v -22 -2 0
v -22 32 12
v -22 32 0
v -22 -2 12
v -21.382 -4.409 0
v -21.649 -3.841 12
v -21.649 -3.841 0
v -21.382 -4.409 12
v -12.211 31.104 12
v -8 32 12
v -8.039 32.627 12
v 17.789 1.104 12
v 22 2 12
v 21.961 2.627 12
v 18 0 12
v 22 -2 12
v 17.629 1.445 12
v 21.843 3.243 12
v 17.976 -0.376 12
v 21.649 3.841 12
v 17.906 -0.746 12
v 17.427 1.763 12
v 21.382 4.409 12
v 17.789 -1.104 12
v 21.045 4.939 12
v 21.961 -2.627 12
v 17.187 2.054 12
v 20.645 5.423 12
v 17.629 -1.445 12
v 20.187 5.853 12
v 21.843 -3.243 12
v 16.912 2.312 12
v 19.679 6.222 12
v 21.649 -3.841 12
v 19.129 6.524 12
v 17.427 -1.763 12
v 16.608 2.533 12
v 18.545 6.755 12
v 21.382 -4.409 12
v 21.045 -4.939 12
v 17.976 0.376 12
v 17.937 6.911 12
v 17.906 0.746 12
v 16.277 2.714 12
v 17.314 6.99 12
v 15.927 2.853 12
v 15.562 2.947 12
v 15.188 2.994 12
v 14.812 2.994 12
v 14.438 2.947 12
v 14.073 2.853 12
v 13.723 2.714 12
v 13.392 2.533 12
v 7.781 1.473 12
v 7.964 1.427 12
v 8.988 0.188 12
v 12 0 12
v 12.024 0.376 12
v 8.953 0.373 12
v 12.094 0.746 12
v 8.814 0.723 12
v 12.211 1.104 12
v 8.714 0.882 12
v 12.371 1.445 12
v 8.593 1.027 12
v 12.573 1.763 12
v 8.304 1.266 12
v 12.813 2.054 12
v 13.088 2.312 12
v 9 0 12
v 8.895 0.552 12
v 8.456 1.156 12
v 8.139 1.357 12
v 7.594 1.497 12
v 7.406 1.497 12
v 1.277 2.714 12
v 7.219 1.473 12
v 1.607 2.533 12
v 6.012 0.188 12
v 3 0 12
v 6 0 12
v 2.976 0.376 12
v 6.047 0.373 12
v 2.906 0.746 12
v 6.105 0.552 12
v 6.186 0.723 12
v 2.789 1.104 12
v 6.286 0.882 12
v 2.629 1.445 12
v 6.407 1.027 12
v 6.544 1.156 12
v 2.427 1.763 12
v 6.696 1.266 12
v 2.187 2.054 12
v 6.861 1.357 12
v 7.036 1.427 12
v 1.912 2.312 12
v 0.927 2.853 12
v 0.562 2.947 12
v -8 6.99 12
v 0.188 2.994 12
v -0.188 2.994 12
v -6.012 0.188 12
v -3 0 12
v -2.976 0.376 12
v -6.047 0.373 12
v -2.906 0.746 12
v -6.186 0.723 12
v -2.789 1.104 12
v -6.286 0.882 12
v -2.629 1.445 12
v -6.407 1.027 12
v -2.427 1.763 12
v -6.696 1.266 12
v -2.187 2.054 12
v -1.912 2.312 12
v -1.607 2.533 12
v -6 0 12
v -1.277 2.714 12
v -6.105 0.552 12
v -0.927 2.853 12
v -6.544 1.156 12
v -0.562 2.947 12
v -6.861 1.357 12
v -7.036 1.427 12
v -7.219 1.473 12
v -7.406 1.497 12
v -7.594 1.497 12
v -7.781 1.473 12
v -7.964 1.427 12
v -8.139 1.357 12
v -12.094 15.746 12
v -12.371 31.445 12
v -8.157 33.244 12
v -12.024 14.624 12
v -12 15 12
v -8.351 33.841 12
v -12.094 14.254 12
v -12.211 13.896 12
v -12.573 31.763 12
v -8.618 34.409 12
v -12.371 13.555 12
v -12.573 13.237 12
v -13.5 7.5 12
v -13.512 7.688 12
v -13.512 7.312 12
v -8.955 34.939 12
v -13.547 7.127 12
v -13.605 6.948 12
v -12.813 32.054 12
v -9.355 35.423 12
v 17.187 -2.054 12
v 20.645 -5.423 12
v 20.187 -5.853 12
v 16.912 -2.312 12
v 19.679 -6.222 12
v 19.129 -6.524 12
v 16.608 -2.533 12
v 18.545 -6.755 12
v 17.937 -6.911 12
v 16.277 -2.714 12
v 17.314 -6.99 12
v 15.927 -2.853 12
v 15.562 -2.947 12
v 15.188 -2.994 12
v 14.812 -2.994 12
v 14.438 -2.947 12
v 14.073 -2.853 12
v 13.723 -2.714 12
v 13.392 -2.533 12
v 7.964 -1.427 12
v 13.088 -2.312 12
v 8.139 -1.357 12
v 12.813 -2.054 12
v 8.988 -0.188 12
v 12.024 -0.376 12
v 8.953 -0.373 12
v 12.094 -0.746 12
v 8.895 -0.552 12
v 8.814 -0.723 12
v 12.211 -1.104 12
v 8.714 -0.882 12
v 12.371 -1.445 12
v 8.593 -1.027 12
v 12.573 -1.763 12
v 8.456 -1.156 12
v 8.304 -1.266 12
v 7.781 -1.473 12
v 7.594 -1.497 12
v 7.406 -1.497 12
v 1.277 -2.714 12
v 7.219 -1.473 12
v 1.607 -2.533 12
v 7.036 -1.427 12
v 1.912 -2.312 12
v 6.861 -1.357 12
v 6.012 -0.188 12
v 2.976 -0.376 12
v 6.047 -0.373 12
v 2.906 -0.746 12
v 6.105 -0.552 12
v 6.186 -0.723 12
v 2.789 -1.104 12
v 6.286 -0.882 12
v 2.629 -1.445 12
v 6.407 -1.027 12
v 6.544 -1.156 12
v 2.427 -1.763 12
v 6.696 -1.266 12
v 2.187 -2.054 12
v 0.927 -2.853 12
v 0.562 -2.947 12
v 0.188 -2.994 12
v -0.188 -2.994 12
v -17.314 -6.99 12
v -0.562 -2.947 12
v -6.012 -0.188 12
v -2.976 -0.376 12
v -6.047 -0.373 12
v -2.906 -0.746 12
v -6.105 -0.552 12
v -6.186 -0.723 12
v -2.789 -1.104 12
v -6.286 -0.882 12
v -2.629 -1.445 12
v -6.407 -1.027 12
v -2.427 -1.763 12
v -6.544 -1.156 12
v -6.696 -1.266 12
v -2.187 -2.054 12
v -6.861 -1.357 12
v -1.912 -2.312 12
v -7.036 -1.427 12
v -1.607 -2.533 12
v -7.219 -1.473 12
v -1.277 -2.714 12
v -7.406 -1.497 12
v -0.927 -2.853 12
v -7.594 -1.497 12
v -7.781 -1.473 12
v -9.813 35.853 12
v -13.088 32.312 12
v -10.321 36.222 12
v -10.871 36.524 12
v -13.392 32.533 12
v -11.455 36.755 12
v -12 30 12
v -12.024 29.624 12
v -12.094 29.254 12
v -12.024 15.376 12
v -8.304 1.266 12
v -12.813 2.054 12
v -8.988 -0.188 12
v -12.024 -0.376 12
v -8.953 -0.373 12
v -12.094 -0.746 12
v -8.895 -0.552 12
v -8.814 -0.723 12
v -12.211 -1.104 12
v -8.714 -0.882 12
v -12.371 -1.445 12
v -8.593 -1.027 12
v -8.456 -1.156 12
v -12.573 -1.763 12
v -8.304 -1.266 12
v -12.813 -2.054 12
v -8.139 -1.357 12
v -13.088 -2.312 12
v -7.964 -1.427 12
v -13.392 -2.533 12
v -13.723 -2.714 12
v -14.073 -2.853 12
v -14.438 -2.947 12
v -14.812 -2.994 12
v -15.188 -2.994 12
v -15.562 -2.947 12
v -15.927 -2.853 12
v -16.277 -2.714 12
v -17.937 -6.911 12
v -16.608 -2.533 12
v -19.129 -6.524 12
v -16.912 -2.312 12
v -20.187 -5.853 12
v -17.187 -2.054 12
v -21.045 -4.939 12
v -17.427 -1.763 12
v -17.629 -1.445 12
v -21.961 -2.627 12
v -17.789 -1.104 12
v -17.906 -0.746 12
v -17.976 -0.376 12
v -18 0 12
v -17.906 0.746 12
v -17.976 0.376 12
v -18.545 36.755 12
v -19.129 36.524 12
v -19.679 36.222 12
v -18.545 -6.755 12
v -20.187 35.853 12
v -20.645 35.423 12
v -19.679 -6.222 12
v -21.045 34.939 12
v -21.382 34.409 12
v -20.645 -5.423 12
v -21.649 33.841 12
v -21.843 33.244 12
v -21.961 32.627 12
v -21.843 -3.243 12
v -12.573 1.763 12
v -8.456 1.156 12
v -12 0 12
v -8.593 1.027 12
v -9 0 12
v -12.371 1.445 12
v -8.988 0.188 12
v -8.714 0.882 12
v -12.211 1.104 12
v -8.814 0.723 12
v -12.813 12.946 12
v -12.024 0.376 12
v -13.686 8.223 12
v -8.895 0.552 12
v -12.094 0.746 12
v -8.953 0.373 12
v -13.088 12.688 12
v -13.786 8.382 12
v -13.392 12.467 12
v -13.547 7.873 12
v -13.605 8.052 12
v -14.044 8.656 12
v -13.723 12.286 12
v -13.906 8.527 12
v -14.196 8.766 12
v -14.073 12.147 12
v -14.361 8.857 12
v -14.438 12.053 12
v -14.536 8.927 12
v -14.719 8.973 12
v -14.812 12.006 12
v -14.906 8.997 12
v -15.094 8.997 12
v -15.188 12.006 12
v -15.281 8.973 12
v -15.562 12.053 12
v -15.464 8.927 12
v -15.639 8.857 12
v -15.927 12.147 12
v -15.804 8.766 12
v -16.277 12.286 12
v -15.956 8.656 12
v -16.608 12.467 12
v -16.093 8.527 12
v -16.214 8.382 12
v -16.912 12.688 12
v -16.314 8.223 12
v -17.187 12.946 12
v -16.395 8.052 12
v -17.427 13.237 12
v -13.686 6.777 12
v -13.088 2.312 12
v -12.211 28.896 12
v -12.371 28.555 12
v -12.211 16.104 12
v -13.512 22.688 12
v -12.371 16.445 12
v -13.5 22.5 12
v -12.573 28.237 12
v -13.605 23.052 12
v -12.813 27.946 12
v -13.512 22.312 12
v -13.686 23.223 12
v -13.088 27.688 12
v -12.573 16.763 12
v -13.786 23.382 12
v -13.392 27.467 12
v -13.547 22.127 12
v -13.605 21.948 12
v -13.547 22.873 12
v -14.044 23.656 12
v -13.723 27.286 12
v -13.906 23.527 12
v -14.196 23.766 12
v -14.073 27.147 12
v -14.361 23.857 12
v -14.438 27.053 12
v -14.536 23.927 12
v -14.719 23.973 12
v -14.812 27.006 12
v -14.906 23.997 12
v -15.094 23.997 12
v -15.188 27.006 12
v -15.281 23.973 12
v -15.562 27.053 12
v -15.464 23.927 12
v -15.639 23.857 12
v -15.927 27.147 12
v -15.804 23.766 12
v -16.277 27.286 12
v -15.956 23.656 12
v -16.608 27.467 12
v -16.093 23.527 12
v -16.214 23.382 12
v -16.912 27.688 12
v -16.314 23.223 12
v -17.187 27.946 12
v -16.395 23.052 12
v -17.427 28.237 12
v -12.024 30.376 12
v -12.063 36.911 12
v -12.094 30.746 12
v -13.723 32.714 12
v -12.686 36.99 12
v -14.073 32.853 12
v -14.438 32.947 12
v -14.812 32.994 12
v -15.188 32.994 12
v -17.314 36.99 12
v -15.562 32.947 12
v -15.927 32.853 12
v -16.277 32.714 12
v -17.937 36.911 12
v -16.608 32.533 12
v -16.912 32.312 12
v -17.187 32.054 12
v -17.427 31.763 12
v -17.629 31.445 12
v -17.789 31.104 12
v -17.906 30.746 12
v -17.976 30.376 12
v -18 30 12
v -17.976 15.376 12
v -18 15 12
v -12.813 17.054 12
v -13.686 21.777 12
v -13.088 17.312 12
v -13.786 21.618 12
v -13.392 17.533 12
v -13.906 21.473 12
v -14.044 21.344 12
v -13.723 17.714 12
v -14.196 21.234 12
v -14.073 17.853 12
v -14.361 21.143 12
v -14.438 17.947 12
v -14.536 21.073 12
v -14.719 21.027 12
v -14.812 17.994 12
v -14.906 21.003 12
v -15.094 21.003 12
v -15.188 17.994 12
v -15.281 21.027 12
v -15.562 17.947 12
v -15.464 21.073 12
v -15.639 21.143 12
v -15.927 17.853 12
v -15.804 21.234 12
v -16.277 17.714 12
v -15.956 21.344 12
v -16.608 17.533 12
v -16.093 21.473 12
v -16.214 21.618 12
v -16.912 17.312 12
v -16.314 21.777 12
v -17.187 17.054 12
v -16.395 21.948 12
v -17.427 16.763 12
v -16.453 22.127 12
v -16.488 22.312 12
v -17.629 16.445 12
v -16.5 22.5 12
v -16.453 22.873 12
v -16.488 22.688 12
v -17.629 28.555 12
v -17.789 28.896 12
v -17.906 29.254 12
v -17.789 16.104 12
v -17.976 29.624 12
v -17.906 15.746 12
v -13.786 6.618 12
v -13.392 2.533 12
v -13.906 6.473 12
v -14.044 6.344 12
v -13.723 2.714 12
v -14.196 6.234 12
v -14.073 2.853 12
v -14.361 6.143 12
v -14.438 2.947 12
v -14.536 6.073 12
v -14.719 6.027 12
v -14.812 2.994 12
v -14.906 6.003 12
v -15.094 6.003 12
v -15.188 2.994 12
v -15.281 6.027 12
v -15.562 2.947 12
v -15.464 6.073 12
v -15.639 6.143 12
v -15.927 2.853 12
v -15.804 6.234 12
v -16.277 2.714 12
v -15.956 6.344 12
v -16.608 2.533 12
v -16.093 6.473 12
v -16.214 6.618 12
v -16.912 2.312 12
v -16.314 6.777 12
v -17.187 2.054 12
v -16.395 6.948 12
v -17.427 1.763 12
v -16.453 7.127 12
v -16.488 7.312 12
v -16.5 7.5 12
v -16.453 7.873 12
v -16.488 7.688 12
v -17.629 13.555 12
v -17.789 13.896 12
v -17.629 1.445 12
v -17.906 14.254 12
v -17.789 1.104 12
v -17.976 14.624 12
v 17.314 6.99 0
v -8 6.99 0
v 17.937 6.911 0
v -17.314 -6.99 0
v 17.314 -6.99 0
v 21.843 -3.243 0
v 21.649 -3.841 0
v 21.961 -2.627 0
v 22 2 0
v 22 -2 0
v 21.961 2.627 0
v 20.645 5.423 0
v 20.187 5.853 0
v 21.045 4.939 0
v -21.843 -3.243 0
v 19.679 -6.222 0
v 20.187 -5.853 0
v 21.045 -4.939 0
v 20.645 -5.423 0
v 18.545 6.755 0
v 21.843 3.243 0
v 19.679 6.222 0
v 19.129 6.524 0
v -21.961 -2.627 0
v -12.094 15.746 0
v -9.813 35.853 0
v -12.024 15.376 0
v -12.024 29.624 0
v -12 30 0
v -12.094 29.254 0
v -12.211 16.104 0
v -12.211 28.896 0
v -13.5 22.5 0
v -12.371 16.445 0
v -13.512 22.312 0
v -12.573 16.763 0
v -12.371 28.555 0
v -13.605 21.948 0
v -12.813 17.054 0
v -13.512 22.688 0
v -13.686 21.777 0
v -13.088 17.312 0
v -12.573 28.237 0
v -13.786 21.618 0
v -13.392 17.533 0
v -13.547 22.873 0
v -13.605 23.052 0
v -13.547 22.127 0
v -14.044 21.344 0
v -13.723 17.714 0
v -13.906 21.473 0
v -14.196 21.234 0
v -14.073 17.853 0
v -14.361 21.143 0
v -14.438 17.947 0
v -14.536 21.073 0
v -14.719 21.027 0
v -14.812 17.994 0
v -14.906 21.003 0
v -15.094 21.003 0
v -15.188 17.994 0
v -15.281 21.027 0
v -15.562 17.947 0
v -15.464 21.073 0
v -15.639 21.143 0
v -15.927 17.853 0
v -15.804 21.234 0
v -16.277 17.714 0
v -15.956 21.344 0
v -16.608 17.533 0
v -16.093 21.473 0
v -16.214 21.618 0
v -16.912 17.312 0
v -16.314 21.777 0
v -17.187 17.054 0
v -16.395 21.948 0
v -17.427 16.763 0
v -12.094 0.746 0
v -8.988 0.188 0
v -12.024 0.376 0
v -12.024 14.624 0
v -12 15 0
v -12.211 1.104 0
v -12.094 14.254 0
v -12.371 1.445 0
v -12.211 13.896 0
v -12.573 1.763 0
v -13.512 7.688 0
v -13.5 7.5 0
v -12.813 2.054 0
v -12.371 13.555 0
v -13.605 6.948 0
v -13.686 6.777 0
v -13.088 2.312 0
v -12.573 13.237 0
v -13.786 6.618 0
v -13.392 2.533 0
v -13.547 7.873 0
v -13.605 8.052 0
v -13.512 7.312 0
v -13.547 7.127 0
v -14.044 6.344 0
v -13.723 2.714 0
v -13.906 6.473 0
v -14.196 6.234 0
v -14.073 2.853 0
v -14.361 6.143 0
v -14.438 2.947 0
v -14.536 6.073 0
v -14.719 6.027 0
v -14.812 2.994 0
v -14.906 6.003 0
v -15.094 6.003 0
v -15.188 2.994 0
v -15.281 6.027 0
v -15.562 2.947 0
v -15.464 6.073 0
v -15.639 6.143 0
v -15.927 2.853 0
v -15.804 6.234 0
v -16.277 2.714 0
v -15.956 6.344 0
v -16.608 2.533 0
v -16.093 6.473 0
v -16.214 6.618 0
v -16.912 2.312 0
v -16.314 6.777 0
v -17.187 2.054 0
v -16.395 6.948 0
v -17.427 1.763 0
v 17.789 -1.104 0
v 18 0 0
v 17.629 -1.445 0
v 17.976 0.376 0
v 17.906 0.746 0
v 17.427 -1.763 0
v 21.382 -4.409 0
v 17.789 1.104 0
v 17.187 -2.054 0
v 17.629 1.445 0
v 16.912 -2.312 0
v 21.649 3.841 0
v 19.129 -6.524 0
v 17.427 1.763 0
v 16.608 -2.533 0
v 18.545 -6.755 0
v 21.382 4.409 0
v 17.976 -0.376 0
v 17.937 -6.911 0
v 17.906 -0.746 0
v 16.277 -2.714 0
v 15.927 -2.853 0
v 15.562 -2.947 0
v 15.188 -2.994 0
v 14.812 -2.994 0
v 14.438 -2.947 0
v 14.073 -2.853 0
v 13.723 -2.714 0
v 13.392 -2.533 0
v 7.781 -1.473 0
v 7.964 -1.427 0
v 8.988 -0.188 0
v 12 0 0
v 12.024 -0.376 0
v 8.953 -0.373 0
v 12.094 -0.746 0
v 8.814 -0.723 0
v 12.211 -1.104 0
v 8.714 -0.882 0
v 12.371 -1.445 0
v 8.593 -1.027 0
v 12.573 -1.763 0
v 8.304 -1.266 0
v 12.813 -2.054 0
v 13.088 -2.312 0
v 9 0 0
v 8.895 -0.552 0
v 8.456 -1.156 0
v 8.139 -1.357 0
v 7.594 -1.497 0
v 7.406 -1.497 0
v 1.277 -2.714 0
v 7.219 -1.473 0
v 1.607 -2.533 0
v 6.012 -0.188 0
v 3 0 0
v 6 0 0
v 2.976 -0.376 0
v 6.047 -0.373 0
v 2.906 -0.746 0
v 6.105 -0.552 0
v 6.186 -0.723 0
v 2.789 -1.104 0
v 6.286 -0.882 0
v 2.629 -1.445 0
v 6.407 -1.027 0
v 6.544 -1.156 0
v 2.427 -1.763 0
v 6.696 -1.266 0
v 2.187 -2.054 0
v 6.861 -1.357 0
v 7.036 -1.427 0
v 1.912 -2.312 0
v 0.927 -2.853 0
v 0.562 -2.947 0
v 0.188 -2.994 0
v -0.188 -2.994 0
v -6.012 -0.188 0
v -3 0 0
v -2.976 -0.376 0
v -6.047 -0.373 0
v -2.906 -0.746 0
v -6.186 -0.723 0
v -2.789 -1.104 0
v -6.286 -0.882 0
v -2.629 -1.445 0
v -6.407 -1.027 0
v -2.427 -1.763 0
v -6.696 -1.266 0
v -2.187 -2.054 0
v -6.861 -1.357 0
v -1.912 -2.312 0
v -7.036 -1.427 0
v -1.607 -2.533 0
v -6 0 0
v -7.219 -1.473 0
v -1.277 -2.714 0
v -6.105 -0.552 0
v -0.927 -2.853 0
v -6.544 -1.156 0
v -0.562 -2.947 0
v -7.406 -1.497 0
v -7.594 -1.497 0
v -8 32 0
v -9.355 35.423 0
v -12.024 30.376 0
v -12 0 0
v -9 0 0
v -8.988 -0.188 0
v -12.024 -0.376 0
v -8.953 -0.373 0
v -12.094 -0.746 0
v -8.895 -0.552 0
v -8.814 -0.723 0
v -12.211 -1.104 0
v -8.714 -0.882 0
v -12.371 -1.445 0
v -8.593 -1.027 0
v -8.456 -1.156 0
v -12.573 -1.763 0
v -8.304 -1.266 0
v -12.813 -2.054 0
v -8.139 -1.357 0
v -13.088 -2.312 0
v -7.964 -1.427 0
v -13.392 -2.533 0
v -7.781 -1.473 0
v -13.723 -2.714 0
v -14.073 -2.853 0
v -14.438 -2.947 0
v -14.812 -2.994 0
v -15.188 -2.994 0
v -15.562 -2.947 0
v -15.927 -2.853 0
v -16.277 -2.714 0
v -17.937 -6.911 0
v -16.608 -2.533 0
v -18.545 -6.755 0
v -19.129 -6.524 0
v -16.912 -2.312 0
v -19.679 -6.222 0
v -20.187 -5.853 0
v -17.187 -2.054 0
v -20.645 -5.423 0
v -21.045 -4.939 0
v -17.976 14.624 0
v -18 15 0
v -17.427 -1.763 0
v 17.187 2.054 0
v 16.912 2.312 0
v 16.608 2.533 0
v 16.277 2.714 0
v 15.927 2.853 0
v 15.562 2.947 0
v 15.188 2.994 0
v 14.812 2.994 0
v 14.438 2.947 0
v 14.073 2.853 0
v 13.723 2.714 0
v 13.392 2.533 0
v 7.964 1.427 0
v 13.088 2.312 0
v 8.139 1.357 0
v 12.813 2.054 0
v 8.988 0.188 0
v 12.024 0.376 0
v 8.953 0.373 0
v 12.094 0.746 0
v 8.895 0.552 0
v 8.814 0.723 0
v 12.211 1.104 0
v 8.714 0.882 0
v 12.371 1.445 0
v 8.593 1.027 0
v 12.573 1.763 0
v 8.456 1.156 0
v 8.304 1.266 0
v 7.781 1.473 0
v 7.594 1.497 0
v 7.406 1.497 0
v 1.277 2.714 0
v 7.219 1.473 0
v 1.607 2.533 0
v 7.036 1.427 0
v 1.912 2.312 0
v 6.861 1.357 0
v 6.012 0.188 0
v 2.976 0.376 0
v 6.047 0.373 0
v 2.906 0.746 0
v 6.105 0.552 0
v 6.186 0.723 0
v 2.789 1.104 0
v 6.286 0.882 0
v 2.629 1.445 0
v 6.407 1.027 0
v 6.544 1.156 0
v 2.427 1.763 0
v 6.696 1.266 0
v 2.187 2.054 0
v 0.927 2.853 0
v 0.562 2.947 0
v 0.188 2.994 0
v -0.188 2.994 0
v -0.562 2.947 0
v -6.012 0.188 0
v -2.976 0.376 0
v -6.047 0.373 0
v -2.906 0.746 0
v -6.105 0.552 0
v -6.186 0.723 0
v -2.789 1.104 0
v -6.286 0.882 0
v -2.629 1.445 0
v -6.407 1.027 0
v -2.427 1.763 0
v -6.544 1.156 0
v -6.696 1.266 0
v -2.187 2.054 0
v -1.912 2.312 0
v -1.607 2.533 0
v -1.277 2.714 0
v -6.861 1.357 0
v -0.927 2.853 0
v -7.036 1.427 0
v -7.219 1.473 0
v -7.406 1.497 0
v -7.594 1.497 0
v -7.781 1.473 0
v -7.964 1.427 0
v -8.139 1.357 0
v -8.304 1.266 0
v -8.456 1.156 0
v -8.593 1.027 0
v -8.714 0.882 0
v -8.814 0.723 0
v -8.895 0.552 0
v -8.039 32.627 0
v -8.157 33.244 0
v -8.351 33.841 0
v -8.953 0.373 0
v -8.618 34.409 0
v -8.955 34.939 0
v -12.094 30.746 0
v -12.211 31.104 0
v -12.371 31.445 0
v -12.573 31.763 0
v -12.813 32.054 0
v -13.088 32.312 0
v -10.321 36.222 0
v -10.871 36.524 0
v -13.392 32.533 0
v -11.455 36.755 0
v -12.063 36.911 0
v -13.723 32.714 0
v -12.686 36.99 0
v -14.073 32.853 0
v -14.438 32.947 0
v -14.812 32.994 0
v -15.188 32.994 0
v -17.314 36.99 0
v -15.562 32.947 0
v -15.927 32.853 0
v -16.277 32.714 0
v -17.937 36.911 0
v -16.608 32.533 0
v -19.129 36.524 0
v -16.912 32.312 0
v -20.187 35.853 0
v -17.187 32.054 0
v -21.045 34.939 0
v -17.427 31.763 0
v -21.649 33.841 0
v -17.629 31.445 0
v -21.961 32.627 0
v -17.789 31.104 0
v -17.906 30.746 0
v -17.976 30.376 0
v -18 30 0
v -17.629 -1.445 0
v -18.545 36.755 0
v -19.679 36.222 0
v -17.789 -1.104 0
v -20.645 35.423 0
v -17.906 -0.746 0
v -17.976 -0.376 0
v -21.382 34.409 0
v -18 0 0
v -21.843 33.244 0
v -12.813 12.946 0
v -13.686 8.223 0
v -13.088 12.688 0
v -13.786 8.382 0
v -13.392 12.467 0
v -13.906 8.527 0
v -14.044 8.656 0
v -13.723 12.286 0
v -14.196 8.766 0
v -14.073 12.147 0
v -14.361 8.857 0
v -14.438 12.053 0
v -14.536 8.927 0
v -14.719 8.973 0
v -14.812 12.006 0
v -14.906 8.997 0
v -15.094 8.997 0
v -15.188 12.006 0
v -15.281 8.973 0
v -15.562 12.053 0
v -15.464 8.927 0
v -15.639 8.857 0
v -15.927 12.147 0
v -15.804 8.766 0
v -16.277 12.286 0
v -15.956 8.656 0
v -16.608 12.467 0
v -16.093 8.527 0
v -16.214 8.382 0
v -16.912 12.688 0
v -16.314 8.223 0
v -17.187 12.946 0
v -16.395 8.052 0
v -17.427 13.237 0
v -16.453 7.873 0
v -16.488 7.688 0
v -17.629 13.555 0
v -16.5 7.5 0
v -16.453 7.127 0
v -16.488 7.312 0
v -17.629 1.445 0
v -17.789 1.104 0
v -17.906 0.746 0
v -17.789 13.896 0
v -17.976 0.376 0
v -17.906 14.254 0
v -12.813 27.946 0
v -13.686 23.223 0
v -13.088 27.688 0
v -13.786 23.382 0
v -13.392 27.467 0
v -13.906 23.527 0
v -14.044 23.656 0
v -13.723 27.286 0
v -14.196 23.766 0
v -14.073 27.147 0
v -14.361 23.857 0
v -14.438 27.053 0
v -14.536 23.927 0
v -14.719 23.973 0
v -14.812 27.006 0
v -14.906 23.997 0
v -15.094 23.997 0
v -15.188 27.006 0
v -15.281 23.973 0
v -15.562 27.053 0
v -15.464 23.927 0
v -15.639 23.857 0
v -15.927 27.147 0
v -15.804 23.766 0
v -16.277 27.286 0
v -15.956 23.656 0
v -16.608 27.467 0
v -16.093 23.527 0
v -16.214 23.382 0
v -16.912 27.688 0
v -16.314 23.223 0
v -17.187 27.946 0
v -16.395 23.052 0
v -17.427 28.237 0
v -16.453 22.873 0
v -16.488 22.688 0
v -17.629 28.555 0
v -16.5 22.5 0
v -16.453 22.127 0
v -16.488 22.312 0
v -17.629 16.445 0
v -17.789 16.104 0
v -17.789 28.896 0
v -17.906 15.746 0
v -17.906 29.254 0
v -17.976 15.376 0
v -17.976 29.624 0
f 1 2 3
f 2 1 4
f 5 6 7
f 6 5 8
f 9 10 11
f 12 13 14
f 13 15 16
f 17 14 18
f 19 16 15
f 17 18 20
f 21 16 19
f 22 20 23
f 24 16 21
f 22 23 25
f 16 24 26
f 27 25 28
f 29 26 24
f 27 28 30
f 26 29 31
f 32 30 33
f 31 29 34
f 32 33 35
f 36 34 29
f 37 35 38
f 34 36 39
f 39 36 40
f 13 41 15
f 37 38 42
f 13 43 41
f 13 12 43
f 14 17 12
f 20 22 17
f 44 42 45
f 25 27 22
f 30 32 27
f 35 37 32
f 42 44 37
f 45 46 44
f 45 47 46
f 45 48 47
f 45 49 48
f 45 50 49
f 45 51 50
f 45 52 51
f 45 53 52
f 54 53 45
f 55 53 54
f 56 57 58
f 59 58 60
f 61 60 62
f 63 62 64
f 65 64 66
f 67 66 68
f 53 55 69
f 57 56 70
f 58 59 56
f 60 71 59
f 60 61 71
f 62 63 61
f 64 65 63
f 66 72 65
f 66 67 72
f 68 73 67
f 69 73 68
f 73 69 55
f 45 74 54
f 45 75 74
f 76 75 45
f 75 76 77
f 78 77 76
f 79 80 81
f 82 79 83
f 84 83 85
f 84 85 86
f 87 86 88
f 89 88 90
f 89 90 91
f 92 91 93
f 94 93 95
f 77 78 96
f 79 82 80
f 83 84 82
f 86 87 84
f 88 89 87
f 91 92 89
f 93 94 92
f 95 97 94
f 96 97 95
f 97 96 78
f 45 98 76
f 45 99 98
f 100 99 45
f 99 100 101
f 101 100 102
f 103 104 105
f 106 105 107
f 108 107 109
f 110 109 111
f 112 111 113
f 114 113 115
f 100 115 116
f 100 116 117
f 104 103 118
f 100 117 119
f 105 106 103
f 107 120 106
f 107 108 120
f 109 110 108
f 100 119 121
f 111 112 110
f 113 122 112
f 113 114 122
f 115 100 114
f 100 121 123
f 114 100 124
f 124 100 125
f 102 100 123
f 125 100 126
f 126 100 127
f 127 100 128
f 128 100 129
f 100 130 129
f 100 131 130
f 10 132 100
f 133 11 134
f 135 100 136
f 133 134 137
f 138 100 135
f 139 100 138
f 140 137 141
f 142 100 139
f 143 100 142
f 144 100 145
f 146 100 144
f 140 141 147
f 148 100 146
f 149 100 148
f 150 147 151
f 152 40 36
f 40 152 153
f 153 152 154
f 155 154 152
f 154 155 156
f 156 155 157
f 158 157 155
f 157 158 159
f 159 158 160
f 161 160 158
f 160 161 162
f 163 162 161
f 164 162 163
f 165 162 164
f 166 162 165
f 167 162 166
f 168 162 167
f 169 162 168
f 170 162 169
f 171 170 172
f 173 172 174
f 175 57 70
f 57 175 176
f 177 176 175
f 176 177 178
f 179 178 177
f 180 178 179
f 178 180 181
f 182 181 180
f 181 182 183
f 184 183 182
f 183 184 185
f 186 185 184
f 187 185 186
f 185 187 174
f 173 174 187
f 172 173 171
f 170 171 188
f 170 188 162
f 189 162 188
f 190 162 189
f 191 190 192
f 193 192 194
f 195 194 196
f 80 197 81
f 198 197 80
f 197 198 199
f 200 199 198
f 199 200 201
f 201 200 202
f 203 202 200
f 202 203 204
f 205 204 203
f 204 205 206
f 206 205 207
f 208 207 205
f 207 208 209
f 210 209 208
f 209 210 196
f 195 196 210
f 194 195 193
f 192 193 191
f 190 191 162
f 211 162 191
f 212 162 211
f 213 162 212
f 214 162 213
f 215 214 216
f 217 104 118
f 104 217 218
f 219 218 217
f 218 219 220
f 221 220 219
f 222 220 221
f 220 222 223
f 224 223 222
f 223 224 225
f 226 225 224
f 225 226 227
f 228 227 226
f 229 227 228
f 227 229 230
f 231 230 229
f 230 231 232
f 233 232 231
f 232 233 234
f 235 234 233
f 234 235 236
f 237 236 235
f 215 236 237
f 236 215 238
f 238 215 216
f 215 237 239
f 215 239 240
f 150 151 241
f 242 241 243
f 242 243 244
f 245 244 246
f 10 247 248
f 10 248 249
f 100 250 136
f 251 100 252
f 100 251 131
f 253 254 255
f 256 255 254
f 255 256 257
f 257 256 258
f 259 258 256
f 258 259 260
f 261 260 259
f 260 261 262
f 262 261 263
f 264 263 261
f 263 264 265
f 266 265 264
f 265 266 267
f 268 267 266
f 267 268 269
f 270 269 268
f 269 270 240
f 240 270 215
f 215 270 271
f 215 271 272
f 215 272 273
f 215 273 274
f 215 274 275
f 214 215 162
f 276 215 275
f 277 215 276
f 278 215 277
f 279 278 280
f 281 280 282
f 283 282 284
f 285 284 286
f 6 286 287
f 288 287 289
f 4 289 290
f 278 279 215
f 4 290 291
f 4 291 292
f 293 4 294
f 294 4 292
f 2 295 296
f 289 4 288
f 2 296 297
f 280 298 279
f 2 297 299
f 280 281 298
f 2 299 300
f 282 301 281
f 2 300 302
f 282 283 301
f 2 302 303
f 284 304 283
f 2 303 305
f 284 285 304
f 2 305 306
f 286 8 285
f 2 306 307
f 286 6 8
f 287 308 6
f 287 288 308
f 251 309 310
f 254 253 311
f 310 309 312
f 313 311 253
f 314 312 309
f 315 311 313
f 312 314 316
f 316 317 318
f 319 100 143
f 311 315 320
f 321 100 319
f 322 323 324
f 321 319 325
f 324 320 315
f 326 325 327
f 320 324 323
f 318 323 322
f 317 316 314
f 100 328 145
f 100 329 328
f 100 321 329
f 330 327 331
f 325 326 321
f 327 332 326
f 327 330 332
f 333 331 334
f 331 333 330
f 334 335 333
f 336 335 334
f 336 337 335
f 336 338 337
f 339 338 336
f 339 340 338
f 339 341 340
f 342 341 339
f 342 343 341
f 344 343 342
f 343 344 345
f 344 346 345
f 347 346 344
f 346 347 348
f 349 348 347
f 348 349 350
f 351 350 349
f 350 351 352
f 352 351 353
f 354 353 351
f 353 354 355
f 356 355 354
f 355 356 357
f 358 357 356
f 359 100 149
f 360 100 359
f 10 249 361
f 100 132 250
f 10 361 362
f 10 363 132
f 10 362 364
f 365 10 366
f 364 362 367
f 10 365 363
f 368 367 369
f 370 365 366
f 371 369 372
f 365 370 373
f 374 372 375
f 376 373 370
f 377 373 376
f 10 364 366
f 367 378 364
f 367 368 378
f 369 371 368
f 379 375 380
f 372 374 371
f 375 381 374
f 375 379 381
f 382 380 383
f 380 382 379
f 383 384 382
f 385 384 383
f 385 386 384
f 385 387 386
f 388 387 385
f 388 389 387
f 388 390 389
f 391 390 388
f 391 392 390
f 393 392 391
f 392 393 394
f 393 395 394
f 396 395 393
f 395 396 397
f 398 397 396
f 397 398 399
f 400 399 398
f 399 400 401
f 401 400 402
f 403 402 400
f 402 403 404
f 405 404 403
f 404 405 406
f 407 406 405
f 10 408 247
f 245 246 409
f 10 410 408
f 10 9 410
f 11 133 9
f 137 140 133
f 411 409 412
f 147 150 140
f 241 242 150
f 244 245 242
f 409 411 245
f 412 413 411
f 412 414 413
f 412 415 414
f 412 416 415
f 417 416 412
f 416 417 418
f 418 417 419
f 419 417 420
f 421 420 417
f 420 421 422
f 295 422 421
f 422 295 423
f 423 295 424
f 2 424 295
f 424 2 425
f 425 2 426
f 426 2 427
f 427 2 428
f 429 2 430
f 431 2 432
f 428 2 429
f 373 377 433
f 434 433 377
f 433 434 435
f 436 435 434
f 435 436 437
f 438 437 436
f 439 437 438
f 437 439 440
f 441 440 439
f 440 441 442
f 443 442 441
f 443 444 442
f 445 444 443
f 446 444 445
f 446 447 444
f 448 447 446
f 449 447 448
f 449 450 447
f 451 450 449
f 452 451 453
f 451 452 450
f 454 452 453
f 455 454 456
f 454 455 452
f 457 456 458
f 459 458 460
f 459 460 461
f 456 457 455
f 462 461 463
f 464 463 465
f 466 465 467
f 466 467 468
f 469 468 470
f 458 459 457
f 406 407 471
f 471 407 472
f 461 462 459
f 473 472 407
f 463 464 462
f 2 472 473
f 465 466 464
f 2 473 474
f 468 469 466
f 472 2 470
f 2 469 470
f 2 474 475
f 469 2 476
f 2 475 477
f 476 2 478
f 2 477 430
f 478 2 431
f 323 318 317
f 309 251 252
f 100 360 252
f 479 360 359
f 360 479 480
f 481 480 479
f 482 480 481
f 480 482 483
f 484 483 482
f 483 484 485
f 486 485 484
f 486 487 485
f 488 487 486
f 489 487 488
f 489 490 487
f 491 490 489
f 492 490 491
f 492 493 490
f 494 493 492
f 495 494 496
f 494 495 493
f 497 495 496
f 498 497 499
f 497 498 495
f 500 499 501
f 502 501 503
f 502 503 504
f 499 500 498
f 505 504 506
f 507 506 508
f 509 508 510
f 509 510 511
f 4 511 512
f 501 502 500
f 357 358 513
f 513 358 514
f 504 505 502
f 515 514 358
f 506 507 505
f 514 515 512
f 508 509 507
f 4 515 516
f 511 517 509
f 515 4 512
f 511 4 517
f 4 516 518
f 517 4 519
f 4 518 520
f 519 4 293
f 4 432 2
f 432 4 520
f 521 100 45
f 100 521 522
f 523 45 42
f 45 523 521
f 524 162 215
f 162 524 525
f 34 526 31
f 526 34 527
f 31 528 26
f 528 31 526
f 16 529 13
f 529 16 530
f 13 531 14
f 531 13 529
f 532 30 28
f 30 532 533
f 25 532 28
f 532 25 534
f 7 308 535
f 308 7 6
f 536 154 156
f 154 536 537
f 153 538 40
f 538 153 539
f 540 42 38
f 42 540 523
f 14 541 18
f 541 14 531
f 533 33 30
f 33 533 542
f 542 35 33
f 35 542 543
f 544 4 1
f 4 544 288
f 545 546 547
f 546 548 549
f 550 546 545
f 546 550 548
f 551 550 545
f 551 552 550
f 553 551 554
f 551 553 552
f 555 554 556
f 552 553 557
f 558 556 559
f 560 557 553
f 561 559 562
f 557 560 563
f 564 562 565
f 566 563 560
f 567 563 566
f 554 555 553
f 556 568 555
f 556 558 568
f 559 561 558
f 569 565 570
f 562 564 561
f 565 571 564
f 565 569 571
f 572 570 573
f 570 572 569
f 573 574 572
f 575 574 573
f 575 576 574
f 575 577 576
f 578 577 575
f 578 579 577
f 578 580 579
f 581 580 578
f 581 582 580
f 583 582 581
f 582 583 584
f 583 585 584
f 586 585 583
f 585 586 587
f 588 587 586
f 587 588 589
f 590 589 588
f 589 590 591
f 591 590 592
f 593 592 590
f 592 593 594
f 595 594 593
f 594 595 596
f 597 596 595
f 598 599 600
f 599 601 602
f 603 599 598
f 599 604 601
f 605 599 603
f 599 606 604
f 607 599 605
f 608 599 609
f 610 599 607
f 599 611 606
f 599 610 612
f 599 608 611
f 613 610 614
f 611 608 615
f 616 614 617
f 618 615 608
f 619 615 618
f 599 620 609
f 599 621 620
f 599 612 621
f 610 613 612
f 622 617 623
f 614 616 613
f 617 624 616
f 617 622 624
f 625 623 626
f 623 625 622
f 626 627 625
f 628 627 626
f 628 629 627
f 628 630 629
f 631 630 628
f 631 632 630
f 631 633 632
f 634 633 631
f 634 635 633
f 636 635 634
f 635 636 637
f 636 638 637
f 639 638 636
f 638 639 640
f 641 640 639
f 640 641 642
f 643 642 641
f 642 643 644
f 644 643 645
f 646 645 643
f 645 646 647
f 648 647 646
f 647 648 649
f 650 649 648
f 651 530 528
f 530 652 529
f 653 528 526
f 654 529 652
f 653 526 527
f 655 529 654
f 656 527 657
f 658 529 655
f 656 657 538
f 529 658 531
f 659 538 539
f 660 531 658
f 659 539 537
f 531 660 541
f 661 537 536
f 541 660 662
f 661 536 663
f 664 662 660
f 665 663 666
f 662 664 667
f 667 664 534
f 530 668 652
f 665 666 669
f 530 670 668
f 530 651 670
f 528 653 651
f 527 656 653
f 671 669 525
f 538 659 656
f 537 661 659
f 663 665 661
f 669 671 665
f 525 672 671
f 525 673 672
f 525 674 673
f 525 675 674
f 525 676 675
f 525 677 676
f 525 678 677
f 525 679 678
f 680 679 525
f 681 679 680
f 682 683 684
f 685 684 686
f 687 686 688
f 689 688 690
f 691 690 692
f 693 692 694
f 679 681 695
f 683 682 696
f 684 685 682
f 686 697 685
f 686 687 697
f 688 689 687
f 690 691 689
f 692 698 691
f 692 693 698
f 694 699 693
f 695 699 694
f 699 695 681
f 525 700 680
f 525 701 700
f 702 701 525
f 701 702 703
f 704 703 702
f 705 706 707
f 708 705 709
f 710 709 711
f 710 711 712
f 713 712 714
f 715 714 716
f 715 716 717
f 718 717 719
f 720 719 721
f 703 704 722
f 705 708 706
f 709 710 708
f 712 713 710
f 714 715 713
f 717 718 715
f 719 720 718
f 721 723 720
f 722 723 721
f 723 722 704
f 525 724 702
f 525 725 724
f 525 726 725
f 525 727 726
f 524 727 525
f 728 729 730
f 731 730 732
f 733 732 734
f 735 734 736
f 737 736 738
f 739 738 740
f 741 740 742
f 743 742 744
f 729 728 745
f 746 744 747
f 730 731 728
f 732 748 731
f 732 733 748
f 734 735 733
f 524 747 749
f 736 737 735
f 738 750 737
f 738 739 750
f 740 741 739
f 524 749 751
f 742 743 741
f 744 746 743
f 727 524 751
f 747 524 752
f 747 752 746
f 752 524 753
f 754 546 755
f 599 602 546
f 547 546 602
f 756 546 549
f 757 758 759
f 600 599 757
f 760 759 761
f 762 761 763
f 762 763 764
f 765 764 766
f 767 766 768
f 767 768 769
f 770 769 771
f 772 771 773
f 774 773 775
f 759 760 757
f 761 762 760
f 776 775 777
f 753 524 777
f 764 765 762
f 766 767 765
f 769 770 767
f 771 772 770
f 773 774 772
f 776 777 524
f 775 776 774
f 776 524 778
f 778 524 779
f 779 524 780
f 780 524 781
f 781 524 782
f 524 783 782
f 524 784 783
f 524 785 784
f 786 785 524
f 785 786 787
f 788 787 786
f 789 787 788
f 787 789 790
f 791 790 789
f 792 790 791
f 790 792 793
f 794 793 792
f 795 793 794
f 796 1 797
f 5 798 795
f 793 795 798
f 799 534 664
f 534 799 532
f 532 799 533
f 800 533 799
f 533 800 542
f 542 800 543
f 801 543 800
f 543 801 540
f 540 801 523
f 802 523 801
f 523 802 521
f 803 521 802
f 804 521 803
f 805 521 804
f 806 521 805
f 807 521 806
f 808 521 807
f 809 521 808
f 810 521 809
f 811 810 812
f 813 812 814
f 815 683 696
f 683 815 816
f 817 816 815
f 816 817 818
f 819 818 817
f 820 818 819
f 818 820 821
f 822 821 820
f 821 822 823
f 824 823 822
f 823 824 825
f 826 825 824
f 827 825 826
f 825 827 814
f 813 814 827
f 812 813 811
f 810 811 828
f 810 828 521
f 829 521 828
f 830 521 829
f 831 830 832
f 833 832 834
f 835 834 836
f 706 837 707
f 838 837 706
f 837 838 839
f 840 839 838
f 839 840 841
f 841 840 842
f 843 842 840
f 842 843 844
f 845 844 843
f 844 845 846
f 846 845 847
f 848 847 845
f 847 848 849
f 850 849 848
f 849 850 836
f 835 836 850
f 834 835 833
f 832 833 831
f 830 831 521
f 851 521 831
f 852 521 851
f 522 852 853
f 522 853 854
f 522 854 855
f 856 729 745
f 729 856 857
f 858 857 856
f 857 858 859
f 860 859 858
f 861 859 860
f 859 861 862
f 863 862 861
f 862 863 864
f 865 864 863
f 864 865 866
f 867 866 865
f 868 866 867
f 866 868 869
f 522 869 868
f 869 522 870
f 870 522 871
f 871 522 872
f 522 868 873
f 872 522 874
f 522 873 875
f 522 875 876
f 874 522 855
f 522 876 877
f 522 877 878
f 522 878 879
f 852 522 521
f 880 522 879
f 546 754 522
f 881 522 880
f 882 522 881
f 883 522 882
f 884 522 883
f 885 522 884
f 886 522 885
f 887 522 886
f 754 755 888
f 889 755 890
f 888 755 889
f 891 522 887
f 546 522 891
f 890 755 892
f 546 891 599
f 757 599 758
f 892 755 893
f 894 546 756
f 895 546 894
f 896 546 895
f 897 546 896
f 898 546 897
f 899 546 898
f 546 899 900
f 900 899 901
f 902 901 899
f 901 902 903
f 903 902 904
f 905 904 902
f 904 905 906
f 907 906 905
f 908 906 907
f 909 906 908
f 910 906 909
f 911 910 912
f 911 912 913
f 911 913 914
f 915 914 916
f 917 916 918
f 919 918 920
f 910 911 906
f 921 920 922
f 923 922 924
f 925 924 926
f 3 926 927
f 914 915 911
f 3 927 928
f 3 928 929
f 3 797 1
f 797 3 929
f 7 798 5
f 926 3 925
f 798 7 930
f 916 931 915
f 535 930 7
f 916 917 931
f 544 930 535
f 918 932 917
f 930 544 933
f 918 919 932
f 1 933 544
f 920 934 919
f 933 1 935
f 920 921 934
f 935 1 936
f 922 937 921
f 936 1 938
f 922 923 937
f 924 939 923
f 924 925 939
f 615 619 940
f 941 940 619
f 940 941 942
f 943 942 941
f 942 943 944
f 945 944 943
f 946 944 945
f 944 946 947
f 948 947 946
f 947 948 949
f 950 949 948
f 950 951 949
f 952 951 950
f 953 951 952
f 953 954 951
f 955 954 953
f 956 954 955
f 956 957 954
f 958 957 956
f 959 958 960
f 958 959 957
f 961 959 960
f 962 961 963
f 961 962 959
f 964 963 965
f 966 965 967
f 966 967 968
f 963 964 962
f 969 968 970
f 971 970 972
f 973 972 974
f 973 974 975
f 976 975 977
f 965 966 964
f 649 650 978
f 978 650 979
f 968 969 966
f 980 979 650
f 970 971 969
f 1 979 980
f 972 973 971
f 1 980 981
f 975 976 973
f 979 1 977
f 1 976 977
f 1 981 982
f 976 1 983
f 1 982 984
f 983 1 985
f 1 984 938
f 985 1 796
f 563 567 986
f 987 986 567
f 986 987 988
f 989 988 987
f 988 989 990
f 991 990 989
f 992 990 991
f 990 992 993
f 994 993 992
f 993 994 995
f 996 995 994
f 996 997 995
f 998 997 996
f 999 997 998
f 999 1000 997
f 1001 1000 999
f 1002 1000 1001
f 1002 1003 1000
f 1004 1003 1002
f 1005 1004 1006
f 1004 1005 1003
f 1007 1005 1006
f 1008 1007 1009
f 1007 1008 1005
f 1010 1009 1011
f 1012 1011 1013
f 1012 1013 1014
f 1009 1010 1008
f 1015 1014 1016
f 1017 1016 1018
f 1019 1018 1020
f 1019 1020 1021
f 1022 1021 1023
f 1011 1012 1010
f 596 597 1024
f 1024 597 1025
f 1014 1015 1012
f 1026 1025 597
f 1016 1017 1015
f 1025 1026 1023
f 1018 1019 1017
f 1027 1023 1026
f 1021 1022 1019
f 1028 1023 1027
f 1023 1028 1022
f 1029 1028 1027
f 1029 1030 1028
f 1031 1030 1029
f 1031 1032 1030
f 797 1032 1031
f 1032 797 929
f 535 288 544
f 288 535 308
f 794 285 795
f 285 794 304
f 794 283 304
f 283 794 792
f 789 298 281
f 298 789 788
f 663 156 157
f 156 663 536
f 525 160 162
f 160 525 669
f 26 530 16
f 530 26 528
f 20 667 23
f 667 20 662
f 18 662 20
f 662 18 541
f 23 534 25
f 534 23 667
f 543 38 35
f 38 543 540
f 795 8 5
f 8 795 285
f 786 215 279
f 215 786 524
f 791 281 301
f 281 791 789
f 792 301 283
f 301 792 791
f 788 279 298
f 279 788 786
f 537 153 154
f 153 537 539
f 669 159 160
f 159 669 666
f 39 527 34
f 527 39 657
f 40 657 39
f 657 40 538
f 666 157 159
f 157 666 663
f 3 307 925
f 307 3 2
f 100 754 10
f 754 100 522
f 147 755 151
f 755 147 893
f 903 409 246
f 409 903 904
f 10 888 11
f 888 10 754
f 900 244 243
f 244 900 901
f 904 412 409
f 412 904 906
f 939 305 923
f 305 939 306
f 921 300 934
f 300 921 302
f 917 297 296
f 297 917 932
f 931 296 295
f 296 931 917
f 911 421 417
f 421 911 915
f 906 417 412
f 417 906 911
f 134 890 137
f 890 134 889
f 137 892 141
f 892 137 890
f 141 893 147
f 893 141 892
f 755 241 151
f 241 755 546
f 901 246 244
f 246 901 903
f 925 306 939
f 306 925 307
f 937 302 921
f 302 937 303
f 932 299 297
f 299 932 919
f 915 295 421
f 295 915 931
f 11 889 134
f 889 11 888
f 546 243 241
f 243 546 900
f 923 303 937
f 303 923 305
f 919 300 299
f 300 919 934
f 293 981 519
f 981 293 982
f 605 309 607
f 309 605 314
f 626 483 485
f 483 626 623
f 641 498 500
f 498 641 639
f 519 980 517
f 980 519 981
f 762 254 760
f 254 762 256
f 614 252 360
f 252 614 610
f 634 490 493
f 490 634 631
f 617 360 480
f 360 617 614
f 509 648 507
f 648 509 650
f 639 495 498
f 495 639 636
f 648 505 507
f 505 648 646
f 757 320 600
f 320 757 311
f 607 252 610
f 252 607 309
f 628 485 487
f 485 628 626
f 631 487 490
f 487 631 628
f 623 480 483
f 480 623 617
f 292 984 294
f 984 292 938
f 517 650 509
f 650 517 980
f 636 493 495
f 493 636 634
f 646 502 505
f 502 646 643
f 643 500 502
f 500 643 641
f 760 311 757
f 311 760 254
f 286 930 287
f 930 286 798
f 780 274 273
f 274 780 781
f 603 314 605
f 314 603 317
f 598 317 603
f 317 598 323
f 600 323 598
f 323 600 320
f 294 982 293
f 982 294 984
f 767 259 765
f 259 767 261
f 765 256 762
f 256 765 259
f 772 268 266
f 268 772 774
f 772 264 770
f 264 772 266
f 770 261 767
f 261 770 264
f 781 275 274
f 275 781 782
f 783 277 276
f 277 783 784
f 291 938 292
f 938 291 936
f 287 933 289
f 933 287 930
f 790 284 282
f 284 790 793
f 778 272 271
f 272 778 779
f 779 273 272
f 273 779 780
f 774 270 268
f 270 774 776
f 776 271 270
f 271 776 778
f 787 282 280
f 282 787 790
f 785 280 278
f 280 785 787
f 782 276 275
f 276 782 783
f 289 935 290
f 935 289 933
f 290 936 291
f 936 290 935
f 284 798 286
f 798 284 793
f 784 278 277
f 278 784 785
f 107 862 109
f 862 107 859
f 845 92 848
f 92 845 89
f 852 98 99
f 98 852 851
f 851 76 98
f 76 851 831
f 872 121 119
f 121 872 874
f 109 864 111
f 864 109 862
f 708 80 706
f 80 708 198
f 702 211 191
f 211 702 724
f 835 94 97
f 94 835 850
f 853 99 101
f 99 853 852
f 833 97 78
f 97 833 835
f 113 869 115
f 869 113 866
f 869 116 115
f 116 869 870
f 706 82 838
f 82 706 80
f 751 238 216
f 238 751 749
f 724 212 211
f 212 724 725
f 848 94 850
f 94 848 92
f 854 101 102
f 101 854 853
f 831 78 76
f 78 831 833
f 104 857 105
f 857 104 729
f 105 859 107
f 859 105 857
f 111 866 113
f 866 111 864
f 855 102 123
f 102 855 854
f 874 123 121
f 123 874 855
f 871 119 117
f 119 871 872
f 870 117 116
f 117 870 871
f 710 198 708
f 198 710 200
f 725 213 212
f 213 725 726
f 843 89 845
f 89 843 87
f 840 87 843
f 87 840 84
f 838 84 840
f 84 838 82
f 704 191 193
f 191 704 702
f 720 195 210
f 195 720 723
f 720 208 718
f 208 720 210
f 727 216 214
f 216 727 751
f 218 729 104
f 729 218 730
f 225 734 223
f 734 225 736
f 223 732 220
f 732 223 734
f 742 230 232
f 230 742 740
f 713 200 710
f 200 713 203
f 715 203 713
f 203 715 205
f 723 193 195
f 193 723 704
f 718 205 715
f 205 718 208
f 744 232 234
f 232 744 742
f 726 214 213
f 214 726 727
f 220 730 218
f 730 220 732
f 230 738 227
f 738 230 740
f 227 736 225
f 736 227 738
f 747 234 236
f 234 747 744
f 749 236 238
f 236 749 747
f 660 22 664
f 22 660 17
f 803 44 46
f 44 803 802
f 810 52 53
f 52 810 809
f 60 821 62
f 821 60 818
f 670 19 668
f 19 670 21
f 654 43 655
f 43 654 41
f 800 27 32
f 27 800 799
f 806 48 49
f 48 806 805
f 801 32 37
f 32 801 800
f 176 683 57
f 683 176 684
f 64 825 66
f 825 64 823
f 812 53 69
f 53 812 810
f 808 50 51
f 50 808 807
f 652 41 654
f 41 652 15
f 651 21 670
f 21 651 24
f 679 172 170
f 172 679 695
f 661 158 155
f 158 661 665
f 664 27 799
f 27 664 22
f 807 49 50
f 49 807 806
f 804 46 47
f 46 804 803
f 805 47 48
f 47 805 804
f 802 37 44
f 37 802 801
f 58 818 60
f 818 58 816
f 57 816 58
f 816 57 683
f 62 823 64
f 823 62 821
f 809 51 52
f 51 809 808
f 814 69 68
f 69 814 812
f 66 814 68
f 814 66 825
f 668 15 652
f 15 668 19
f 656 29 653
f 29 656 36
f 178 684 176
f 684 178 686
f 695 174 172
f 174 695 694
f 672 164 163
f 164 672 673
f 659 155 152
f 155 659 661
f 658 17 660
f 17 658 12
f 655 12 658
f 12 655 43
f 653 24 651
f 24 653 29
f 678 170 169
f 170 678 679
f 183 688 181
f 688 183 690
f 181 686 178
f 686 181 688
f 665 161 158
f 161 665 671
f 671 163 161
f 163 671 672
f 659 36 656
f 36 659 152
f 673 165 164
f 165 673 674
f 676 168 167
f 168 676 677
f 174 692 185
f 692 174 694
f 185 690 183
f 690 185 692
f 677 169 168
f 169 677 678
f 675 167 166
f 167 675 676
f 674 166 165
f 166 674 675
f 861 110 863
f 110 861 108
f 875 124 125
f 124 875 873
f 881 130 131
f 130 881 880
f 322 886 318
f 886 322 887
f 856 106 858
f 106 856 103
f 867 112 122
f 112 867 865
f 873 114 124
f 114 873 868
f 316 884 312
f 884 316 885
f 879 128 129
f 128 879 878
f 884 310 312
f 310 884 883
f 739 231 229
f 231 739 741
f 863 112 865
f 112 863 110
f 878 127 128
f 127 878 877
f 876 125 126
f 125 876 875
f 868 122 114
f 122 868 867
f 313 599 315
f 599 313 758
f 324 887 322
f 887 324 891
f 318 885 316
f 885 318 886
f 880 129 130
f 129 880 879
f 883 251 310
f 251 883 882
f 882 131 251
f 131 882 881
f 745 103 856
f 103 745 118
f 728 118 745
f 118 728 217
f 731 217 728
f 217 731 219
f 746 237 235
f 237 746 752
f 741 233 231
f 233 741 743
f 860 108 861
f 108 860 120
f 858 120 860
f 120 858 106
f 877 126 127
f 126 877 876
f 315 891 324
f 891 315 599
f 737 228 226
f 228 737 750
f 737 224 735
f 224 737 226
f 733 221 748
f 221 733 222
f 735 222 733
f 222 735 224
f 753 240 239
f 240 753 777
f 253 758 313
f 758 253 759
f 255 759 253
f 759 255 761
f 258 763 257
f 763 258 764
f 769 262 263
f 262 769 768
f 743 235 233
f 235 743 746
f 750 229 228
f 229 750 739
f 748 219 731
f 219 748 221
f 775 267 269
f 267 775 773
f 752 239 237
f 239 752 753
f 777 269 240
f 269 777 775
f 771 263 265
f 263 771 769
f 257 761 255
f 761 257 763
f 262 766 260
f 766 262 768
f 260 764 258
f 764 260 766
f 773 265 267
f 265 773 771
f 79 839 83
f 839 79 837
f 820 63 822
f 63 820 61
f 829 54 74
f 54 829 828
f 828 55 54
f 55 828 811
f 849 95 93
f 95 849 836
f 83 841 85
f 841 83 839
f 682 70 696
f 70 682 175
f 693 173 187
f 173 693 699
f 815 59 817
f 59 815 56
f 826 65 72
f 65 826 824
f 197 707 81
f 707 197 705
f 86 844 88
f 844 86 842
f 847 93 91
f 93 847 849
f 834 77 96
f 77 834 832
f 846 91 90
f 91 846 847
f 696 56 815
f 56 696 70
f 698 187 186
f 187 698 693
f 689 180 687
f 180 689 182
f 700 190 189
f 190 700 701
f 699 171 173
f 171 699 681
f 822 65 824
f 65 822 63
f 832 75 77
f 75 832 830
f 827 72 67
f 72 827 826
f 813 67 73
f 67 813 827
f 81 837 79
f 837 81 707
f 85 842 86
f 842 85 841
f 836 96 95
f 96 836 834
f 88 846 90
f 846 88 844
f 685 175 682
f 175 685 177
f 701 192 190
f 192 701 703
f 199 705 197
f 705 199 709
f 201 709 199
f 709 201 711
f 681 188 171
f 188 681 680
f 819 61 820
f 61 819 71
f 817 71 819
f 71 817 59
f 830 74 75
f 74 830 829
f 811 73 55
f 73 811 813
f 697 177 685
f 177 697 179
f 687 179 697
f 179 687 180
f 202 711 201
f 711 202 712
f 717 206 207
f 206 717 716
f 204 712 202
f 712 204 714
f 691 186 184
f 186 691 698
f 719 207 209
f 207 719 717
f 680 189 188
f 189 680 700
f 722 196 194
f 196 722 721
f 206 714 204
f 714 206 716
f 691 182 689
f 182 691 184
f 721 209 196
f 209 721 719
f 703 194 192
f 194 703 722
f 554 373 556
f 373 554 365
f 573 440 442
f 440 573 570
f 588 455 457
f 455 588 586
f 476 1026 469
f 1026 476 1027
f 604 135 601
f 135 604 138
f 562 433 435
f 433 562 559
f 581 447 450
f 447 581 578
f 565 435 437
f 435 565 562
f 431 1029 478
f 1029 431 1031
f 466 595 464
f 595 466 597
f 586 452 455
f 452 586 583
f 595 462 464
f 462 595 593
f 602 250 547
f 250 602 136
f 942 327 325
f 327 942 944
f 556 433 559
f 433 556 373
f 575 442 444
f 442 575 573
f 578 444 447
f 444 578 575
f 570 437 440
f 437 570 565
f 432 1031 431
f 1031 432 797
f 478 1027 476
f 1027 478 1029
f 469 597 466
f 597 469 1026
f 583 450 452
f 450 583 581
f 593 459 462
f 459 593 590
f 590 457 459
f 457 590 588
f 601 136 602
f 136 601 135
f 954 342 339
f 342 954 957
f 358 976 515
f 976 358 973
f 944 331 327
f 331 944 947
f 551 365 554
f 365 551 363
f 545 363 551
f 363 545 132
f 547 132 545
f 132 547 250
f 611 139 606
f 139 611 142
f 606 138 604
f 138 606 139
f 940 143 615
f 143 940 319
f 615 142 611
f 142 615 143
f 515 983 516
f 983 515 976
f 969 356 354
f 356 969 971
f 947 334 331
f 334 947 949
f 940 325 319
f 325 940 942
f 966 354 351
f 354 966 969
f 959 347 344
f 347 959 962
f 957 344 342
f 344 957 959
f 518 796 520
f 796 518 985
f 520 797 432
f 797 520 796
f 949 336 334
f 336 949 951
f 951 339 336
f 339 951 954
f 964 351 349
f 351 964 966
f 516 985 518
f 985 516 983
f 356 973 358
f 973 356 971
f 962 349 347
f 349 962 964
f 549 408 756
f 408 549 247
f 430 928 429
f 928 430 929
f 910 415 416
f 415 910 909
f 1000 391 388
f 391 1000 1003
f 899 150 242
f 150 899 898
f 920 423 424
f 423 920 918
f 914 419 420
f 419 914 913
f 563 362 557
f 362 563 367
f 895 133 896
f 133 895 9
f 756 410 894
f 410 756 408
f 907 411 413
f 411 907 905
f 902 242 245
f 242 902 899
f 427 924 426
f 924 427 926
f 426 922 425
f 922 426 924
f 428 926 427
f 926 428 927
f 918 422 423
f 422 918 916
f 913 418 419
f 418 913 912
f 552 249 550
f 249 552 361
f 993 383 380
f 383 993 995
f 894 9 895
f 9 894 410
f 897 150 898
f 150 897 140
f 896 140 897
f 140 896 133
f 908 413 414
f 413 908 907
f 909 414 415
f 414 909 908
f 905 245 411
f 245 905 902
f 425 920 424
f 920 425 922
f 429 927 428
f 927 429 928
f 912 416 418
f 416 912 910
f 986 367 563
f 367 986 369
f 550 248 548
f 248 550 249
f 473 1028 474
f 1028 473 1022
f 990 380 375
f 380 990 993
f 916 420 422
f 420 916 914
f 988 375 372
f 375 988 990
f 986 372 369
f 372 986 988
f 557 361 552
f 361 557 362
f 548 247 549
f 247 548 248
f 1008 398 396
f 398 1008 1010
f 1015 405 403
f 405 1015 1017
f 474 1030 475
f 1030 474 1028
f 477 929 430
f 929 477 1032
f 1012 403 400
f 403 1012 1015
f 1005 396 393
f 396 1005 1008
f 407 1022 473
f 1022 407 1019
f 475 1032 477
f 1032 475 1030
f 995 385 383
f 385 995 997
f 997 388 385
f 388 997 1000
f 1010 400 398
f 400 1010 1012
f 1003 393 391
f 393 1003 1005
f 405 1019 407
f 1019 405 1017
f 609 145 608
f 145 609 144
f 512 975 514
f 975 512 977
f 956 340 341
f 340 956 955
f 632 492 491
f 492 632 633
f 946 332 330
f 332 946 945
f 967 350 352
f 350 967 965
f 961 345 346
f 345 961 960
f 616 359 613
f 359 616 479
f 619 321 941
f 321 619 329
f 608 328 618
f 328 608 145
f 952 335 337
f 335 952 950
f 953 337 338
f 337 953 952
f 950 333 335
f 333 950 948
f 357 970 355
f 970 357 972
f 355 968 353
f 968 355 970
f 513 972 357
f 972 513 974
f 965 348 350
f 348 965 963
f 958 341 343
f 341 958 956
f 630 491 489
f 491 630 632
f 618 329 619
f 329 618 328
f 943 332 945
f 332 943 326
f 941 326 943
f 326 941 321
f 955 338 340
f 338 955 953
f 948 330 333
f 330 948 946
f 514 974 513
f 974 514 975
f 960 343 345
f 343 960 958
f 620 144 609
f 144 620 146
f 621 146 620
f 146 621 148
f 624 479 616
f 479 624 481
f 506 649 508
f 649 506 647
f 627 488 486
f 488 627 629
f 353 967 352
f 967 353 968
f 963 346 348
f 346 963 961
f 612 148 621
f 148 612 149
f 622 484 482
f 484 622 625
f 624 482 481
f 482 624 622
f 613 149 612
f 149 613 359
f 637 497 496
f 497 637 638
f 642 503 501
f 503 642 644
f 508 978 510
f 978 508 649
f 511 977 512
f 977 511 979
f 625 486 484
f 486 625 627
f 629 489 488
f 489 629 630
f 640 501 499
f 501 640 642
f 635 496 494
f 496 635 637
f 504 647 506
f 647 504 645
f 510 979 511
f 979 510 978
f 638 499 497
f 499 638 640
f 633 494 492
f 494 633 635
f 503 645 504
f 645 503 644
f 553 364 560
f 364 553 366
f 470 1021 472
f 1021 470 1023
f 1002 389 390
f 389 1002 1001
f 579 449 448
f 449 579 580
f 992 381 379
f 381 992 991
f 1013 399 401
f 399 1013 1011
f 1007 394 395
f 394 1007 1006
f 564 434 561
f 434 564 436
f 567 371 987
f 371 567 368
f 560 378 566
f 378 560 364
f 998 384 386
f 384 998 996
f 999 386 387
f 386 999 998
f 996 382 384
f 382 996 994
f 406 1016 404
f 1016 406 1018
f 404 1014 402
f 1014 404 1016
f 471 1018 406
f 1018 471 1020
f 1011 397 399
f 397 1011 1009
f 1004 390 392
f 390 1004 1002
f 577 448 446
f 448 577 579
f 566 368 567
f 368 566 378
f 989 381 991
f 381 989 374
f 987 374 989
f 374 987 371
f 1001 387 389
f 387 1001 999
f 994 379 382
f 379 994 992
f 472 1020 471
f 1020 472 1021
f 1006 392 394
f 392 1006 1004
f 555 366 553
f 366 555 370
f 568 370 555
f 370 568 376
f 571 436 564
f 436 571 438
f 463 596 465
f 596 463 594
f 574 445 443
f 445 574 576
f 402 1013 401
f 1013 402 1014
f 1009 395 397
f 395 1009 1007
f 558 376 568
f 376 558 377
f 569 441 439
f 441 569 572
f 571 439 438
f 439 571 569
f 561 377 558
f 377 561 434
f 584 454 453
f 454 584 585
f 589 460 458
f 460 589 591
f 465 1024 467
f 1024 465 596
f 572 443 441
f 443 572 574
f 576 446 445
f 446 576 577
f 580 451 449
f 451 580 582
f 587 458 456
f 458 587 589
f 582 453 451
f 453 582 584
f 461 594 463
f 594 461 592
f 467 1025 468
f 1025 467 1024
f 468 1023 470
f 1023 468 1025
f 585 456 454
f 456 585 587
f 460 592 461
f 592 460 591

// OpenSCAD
$fn = 50;


difference() {
	union() {
		*color(alpha = 1.0000000000, c = "gray") {
			translate(v = [0, 7, 0]) {
				linear_extrude(height = 1) {
					text(font = "Arial:style=Bold", halign = "center", size = 4.5000000000, text = "COMMENT plate main", valign = "center");
				}
			}
		}
		hull() {
			translate(v = [-17.0000000000, 2.0000000000, 0]) {
				cylinder(h = 12, r = 5);
			}
			translate(v = [17.0000000000, 2.0000000000, 0]) {
				cylinder(h = 12, r = 5);
			}
			translate(v = [-17.0000000000, -2.0000000000, 0]) {
				cylinder(h = 12, r = 5);
			}
			translate(v = [17.0000000000, -2.0000000000, 0]) {
				cylinder(h = 12, r = 5);
			}
		}
		*color(alpha = 1.0000000000, c = "gray") {
			translate(v = [0, 7, 0]) {
				linear_extrude(height = 1) {
					text(font = "Arial:style=Bold", halign = "center", size = 4.5000000000, text = "COMMENT plate main", valign = "center");
				}
			}
		}
		translate(v = [-15.0000000000, 15.0000000000, 0]) {
			hull() {
				translate(v = [-2.0000000000, 17.0000000000, 0]) {
					cylinder(h = 12, r = 5);
				}
				translate(v = [2.0000000000, 17.0000000000, 0]) {
					cylinder(h = 12, r = 5);
				}
				translate(v = [-2.0000000000, -17.0000000000, 0]) {
					cylinder(h = 12, r = 5);
				}
				translate(v = [2.0000000000, -17.0000000000, 0]) {
					cylinder(h = 12, r = 5);
				}
			}
		}
	}
	union() {
		*color(alpha = 1.0000000000, c = "gray") {
			translate(v = [0, 7, 0]) {
				linear_extrude(height = 1) {
					text(font = "Arial:style=Bold", halign = "center", size = 4.5000000000, text = "COMMENT holes main", valign = "center");
				}
			}
		}
		translate(v = [-15.0000000000, 0.0000000000, 0]) {
			translate(v = [0, 0, -100]) {
				cylinder(h = 200, r = 3.0000000000);
			}
		}
		translate(v = [0, 0, -100]) {
			cylinder(h = 200, r = 3.0000000000);
		}
		translate(v = [15.0000000000, 0.0000000000, 0]) {
			translate(v = [0, 0, -100]) {
				cylinder(h = 200, r = 3.0000000000);
			}
		}
		translate(v = [-15.0000000000, 0.0000000000, 0]) {
			translate(v = [0, 0, -100]) {
				cylinder(h = 200, r = 1.5000000000);
			}
		}
		translate(v = [-7.5000000000, 0.0000000000, 0]) {
			translate(v = [0, 0, -100]) {
				cylinder(h = 200, r = 1.5000000000);
			}
		}
		translate(v = [0, 0, -100]) {
			cylinder(h = 200, r = 1.5000000000);
		}
		translate(v = [7.5000000000, 0.0000000000, 0]) {
			translate(v = [0, 0, -100]) {
				cylinder(h = 200, r = 1.5000000000);
			}
		}
		translate(v = [15.0000000000, 0.0000000000, 0]) {
			translate(v = [0, 0, -100]) {
				cylinder(h = 200, r = 1.5000000000);
			}
		}
		*color(alpha = 1.0000000000, c = "gray") {
			translate(v = [0, 7, 0]) {
				linear_extrude(height = 1) {
					text(font = "Arial:style=Bold", halign = "center", size = 4.5000000000, text = "COMMENT holes main", valign = "center");
				}
			}
		}
		translate(v = [-15.0000000000, 0.0000000000, 0]) {
			translate(v = [0, 0, -100]) {
				cylinder(h = 200, r = 3.0000000000);
			}
		}
		translate(v = [-15.0000000000, 15.0000000000, 0]) {
			translate(v = [0, 0, -100]) {
				cylinder(h = 200, r = 3.0000000000);
			}
		}
		translate(v = [-15.0000000000, 30.0000000000, 0]) {
			translate(v = [0, 0, -100]) {
				cylinder(h = 200, r = 3.0000000000);
			}
		}
		translate(v = [-15.0000000000, 0.0000000000, 0]) {
			translate(v = [0, 0, -100]) {
				cylinder(h = 200, r = 1.5000000000);
			}
		}
		translate(v = [-15.0000000000, 7.5000000000, 0]) {
			translate(v = [0, 0, -100]) {
				cylinder(h = 200, r = 1.5000000000);
			}
		}
		translate(v = [-15.0000000000, 15.0000000000, 0]) {
			translate(v = [0, 0, -100]) {
				cylinder(h = 200, r = 1.5000000000);
			}
		}
		translate(v = [-15.0000000000, 22.5000000000, 0]) {
			translate(v = [0, 0, -100]) {
				cylinder(h = 200, r = 1.5000000000);
			}
		}
		translate(v = [-15.0000000000, 30.0000000000, 0]) {
			translate(v = [0, 0, -100]) {
				cylinder(h = 200, r = 1.5000000000);
			}
		}
	}
}
